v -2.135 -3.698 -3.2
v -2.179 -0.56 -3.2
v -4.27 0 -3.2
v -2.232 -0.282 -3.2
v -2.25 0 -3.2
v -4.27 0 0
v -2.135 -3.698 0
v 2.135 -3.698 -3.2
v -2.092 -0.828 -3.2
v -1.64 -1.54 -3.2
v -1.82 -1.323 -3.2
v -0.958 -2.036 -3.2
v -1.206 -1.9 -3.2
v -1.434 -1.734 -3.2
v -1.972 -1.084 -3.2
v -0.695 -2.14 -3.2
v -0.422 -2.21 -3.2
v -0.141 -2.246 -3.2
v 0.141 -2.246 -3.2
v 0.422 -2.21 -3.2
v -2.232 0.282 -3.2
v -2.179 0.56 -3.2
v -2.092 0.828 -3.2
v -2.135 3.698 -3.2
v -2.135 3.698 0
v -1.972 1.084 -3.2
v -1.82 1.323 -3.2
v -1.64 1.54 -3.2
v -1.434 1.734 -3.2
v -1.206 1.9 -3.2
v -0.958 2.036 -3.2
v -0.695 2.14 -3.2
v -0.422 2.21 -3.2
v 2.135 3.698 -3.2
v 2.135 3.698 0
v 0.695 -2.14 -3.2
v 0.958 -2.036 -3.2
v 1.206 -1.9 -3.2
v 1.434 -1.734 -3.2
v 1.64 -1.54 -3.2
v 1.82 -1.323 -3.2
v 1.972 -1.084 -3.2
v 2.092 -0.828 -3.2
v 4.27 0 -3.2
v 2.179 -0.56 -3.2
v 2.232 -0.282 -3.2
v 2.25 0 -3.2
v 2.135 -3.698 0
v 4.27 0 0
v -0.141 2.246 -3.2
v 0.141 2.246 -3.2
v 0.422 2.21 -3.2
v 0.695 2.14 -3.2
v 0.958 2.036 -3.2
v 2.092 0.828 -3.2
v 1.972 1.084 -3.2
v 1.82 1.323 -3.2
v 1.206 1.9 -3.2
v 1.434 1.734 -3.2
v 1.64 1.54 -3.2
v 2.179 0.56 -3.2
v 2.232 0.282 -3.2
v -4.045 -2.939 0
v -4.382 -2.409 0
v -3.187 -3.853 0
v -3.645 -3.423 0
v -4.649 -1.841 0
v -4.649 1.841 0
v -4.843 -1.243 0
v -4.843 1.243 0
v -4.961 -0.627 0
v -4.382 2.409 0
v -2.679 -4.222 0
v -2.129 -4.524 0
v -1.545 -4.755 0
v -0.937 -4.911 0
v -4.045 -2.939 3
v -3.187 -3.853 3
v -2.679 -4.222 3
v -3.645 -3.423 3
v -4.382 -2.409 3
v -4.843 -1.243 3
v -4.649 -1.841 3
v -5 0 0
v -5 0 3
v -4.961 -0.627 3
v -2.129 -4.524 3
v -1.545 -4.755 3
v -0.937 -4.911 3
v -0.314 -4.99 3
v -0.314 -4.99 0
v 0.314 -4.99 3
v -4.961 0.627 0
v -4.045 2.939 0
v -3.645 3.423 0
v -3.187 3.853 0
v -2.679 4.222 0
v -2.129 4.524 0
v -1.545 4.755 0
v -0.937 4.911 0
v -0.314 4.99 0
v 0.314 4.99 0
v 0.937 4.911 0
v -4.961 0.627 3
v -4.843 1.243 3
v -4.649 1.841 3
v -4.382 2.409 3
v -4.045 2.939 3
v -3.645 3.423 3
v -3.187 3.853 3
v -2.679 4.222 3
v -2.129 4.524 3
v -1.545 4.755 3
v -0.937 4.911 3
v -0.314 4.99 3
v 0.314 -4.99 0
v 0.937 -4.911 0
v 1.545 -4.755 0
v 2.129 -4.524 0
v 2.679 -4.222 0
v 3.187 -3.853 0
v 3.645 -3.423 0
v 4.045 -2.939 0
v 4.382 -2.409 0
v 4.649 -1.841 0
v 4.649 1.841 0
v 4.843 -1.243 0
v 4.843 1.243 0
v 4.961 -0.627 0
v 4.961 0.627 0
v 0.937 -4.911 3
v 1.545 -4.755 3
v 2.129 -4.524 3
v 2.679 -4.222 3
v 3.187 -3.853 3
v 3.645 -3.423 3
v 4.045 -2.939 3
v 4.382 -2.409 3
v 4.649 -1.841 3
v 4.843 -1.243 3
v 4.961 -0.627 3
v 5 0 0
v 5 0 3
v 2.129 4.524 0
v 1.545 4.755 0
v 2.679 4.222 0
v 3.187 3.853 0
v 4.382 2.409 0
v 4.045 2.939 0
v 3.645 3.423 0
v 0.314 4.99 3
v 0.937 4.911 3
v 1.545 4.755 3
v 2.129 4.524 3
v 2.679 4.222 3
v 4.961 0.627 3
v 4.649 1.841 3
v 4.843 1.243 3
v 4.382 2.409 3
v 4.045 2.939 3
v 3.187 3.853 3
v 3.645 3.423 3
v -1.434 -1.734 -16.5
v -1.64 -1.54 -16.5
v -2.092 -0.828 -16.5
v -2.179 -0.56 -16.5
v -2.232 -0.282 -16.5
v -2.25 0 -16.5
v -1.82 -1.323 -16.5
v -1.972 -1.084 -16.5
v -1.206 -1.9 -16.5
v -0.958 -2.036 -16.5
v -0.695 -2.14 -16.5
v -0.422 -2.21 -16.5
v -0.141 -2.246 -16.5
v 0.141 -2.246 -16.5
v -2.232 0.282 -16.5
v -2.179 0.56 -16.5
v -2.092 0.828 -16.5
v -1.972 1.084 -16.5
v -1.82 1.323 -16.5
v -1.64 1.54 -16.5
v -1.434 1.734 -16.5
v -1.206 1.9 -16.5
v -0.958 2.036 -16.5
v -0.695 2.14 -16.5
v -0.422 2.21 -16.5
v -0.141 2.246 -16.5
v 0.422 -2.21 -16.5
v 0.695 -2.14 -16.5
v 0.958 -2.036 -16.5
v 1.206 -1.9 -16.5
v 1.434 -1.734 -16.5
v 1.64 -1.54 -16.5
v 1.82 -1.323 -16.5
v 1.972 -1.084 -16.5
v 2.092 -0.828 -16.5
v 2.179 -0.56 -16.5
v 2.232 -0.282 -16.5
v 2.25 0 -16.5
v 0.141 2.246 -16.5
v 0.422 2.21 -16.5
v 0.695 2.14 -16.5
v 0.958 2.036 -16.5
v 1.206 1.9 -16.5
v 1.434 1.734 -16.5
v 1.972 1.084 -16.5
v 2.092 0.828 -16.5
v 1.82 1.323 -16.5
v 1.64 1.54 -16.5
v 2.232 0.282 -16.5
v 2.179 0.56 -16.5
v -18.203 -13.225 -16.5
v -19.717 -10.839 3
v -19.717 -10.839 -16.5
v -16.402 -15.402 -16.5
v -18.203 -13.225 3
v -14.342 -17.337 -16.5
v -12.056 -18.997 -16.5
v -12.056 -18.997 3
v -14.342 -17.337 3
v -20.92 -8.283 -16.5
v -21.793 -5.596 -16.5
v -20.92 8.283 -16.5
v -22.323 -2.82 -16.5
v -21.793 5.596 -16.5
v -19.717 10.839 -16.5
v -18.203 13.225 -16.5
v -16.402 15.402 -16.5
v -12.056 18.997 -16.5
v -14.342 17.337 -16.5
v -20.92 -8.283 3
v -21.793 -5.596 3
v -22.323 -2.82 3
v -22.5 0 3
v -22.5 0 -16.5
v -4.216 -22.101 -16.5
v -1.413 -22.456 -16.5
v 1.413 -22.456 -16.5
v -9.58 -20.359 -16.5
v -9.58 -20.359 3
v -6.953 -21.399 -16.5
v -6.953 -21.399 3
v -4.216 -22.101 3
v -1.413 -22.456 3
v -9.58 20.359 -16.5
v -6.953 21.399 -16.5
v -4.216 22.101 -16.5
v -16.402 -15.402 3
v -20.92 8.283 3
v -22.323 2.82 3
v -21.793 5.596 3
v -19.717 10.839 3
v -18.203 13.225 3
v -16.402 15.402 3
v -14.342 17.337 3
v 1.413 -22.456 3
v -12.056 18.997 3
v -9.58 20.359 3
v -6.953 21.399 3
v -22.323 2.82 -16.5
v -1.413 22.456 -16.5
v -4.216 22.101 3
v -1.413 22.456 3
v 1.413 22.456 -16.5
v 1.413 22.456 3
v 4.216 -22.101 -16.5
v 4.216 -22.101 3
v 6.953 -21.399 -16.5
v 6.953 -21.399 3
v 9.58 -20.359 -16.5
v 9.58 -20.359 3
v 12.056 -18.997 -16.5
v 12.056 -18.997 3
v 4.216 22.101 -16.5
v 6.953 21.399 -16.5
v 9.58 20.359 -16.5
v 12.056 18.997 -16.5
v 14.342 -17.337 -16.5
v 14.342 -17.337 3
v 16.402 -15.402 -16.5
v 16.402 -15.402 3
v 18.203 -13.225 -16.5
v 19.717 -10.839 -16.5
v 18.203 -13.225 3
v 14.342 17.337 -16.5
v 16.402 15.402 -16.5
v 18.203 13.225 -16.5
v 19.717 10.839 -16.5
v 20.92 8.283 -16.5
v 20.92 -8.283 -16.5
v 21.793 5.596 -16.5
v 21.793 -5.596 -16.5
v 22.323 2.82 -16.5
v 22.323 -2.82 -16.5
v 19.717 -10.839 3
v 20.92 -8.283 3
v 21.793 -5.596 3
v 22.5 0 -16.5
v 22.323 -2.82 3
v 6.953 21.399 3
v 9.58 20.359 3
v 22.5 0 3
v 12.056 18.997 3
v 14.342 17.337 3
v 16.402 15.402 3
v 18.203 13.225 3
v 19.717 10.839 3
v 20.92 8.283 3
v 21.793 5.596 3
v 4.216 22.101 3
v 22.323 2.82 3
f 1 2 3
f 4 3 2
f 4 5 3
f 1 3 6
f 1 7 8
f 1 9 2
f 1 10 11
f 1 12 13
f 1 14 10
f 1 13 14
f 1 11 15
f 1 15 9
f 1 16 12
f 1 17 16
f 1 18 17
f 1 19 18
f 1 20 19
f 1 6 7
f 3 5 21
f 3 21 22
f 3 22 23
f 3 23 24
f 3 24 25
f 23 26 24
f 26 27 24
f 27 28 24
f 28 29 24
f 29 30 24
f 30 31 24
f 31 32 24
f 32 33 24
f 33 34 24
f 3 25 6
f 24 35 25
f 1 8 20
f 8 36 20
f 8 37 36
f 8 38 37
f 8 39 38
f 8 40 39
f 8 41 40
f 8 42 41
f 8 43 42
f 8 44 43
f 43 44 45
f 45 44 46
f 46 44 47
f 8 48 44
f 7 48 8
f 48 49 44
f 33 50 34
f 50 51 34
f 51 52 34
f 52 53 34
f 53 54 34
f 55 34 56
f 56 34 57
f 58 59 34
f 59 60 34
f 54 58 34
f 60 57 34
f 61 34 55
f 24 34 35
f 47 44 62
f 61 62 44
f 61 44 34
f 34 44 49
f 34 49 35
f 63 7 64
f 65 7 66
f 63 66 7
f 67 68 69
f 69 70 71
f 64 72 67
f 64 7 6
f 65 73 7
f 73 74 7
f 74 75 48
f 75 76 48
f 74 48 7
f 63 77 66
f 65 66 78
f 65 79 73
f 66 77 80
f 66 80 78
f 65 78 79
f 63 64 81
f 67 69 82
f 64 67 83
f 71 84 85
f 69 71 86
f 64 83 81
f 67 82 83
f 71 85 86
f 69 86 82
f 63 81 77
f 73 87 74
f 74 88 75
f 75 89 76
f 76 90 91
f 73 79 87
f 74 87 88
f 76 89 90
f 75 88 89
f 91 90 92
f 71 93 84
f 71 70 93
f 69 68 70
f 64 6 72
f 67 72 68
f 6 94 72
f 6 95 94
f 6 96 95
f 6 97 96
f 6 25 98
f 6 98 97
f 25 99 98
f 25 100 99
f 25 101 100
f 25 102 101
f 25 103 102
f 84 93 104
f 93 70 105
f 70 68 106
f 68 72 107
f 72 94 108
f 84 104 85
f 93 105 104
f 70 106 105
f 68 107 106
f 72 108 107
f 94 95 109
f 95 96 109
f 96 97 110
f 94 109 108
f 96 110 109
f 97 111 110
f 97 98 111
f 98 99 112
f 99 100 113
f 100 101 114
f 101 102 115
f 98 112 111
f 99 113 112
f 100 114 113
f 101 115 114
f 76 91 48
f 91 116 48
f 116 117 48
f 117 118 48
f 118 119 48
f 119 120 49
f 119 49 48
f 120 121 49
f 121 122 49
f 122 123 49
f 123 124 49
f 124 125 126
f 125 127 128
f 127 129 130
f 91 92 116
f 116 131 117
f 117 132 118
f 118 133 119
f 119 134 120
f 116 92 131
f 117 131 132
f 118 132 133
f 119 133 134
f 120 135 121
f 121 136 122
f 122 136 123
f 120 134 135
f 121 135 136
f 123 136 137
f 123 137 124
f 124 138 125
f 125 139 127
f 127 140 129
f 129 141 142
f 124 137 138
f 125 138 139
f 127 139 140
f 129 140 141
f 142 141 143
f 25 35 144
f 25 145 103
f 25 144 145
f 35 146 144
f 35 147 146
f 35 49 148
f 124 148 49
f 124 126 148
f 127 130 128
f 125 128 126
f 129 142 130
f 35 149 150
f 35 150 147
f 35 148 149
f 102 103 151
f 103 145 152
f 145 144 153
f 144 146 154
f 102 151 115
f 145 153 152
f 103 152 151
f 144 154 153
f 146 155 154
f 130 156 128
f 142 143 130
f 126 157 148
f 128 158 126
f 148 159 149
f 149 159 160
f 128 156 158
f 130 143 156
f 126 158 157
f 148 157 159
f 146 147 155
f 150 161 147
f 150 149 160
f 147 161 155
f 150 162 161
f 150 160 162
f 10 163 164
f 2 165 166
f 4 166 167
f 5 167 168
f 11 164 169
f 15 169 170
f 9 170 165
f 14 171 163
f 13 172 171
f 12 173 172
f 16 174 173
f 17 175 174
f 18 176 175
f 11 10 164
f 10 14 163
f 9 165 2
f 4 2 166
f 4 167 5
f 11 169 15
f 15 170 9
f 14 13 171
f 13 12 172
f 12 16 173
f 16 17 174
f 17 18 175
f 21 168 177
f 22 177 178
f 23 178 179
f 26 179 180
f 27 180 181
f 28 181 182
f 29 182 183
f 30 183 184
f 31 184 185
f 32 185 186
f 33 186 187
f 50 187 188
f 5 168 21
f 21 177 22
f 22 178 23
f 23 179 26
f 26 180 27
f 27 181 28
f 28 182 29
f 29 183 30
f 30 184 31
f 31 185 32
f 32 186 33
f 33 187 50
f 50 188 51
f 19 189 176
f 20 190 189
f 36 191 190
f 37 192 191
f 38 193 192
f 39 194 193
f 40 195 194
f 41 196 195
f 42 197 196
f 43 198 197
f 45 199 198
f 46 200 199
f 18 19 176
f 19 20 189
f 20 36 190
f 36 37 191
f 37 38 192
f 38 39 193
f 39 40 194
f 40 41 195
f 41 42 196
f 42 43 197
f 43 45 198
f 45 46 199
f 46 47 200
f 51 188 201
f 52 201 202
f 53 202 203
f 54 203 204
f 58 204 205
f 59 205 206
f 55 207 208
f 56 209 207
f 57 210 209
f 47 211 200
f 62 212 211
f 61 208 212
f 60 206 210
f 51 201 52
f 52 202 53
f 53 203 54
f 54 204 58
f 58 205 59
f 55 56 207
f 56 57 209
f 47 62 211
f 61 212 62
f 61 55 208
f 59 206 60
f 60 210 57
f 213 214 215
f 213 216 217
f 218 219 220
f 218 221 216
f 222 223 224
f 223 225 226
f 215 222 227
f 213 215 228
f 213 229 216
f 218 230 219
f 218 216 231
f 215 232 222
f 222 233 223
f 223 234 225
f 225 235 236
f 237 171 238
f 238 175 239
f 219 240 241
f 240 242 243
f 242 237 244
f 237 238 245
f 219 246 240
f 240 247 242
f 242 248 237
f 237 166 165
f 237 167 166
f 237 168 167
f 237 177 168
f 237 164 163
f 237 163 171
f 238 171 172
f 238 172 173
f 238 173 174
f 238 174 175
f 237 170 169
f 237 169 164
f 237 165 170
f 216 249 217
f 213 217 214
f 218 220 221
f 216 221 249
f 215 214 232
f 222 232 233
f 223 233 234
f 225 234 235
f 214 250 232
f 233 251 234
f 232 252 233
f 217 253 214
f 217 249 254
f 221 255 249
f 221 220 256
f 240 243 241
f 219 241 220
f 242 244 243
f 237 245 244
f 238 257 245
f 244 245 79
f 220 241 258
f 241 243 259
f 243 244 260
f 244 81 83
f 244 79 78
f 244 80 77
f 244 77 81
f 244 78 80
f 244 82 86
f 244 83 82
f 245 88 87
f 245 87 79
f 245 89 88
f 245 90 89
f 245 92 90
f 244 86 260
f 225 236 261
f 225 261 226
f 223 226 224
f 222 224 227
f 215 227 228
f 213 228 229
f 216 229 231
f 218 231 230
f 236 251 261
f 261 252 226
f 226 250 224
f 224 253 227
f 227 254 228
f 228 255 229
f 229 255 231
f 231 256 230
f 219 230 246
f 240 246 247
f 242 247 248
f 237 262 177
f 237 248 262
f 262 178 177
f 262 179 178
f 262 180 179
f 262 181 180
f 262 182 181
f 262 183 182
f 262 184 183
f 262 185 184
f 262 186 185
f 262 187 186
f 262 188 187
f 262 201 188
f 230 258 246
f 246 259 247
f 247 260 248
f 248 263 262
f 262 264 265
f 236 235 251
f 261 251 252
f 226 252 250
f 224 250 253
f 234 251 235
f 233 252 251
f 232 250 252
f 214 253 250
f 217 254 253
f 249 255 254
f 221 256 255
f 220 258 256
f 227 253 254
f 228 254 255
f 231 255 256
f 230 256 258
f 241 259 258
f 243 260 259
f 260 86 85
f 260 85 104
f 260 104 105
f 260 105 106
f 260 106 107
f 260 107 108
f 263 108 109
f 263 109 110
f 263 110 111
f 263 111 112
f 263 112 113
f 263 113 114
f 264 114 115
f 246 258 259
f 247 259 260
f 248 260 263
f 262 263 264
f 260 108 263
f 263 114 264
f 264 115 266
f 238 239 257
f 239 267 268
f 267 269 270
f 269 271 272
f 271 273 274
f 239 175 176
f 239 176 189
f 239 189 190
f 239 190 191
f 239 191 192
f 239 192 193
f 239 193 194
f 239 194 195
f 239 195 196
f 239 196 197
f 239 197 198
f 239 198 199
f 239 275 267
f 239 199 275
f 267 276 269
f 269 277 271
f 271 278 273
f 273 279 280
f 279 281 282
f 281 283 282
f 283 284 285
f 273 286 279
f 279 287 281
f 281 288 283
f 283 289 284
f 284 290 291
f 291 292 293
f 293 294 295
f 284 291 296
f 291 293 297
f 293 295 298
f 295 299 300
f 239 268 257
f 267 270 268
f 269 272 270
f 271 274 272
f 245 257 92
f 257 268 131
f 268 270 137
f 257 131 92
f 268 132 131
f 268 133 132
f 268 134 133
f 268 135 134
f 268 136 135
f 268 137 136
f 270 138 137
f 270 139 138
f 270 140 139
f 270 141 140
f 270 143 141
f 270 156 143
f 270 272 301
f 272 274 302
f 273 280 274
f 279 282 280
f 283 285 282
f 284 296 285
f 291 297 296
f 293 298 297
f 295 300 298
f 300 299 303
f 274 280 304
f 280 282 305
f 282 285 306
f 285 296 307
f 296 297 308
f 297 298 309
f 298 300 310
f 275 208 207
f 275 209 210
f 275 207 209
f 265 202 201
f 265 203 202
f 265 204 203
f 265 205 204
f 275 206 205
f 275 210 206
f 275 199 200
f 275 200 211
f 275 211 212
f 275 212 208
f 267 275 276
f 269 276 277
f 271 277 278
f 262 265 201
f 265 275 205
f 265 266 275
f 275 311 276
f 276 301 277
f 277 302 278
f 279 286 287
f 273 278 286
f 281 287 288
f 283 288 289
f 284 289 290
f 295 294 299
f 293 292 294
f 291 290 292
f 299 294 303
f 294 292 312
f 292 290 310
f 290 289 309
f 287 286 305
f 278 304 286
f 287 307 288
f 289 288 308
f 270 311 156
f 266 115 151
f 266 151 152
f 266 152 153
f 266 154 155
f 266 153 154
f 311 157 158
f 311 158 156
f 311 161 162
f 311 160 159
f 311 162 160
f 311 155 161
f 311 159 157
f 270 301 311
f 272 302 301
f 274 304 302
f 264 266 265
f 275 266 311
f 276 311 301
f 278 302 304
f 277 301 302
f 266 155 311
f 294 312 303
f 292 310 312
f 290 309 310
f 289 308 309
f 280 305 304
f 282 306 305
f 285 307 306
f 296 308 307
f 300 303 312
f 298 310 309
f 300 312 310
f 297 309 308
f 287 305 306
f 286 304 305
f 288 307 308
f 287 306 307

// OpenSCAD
$fn = 50;

difference() {
	union() {
		translate(v = [0, 0, -16.5]) {
			cylinder(h = 19.5, r = 22.5);
		}
	}
	union() {
		translate(v = [0, 0, 0]) {
			rotate(a = [0, 0, 0]) {
				difference() {
					union() {
						translate(v = [0, 0, -3.2]) {
							linear_extrude(height = 3.2) {
								polygon(points = [[4.2698, 0.0], [2.1349000000000005, 3.697755269078796], [-2.134899999999999, 3.6977552690787965], [-4.2698, 5.228996902999369e-16], [-2.134900000000002, -3.6977552690787956], [2.1348999999999974, -3.697755269078798]]);
							}
						}
					}
					union();
				}
			}
		}
		#cylinder(h = 3, r = 5.0);
		#translate(v = [0, 0, -100.0]) {
			cylinder(h = 200, r = 2.25);
		}
	}
}
